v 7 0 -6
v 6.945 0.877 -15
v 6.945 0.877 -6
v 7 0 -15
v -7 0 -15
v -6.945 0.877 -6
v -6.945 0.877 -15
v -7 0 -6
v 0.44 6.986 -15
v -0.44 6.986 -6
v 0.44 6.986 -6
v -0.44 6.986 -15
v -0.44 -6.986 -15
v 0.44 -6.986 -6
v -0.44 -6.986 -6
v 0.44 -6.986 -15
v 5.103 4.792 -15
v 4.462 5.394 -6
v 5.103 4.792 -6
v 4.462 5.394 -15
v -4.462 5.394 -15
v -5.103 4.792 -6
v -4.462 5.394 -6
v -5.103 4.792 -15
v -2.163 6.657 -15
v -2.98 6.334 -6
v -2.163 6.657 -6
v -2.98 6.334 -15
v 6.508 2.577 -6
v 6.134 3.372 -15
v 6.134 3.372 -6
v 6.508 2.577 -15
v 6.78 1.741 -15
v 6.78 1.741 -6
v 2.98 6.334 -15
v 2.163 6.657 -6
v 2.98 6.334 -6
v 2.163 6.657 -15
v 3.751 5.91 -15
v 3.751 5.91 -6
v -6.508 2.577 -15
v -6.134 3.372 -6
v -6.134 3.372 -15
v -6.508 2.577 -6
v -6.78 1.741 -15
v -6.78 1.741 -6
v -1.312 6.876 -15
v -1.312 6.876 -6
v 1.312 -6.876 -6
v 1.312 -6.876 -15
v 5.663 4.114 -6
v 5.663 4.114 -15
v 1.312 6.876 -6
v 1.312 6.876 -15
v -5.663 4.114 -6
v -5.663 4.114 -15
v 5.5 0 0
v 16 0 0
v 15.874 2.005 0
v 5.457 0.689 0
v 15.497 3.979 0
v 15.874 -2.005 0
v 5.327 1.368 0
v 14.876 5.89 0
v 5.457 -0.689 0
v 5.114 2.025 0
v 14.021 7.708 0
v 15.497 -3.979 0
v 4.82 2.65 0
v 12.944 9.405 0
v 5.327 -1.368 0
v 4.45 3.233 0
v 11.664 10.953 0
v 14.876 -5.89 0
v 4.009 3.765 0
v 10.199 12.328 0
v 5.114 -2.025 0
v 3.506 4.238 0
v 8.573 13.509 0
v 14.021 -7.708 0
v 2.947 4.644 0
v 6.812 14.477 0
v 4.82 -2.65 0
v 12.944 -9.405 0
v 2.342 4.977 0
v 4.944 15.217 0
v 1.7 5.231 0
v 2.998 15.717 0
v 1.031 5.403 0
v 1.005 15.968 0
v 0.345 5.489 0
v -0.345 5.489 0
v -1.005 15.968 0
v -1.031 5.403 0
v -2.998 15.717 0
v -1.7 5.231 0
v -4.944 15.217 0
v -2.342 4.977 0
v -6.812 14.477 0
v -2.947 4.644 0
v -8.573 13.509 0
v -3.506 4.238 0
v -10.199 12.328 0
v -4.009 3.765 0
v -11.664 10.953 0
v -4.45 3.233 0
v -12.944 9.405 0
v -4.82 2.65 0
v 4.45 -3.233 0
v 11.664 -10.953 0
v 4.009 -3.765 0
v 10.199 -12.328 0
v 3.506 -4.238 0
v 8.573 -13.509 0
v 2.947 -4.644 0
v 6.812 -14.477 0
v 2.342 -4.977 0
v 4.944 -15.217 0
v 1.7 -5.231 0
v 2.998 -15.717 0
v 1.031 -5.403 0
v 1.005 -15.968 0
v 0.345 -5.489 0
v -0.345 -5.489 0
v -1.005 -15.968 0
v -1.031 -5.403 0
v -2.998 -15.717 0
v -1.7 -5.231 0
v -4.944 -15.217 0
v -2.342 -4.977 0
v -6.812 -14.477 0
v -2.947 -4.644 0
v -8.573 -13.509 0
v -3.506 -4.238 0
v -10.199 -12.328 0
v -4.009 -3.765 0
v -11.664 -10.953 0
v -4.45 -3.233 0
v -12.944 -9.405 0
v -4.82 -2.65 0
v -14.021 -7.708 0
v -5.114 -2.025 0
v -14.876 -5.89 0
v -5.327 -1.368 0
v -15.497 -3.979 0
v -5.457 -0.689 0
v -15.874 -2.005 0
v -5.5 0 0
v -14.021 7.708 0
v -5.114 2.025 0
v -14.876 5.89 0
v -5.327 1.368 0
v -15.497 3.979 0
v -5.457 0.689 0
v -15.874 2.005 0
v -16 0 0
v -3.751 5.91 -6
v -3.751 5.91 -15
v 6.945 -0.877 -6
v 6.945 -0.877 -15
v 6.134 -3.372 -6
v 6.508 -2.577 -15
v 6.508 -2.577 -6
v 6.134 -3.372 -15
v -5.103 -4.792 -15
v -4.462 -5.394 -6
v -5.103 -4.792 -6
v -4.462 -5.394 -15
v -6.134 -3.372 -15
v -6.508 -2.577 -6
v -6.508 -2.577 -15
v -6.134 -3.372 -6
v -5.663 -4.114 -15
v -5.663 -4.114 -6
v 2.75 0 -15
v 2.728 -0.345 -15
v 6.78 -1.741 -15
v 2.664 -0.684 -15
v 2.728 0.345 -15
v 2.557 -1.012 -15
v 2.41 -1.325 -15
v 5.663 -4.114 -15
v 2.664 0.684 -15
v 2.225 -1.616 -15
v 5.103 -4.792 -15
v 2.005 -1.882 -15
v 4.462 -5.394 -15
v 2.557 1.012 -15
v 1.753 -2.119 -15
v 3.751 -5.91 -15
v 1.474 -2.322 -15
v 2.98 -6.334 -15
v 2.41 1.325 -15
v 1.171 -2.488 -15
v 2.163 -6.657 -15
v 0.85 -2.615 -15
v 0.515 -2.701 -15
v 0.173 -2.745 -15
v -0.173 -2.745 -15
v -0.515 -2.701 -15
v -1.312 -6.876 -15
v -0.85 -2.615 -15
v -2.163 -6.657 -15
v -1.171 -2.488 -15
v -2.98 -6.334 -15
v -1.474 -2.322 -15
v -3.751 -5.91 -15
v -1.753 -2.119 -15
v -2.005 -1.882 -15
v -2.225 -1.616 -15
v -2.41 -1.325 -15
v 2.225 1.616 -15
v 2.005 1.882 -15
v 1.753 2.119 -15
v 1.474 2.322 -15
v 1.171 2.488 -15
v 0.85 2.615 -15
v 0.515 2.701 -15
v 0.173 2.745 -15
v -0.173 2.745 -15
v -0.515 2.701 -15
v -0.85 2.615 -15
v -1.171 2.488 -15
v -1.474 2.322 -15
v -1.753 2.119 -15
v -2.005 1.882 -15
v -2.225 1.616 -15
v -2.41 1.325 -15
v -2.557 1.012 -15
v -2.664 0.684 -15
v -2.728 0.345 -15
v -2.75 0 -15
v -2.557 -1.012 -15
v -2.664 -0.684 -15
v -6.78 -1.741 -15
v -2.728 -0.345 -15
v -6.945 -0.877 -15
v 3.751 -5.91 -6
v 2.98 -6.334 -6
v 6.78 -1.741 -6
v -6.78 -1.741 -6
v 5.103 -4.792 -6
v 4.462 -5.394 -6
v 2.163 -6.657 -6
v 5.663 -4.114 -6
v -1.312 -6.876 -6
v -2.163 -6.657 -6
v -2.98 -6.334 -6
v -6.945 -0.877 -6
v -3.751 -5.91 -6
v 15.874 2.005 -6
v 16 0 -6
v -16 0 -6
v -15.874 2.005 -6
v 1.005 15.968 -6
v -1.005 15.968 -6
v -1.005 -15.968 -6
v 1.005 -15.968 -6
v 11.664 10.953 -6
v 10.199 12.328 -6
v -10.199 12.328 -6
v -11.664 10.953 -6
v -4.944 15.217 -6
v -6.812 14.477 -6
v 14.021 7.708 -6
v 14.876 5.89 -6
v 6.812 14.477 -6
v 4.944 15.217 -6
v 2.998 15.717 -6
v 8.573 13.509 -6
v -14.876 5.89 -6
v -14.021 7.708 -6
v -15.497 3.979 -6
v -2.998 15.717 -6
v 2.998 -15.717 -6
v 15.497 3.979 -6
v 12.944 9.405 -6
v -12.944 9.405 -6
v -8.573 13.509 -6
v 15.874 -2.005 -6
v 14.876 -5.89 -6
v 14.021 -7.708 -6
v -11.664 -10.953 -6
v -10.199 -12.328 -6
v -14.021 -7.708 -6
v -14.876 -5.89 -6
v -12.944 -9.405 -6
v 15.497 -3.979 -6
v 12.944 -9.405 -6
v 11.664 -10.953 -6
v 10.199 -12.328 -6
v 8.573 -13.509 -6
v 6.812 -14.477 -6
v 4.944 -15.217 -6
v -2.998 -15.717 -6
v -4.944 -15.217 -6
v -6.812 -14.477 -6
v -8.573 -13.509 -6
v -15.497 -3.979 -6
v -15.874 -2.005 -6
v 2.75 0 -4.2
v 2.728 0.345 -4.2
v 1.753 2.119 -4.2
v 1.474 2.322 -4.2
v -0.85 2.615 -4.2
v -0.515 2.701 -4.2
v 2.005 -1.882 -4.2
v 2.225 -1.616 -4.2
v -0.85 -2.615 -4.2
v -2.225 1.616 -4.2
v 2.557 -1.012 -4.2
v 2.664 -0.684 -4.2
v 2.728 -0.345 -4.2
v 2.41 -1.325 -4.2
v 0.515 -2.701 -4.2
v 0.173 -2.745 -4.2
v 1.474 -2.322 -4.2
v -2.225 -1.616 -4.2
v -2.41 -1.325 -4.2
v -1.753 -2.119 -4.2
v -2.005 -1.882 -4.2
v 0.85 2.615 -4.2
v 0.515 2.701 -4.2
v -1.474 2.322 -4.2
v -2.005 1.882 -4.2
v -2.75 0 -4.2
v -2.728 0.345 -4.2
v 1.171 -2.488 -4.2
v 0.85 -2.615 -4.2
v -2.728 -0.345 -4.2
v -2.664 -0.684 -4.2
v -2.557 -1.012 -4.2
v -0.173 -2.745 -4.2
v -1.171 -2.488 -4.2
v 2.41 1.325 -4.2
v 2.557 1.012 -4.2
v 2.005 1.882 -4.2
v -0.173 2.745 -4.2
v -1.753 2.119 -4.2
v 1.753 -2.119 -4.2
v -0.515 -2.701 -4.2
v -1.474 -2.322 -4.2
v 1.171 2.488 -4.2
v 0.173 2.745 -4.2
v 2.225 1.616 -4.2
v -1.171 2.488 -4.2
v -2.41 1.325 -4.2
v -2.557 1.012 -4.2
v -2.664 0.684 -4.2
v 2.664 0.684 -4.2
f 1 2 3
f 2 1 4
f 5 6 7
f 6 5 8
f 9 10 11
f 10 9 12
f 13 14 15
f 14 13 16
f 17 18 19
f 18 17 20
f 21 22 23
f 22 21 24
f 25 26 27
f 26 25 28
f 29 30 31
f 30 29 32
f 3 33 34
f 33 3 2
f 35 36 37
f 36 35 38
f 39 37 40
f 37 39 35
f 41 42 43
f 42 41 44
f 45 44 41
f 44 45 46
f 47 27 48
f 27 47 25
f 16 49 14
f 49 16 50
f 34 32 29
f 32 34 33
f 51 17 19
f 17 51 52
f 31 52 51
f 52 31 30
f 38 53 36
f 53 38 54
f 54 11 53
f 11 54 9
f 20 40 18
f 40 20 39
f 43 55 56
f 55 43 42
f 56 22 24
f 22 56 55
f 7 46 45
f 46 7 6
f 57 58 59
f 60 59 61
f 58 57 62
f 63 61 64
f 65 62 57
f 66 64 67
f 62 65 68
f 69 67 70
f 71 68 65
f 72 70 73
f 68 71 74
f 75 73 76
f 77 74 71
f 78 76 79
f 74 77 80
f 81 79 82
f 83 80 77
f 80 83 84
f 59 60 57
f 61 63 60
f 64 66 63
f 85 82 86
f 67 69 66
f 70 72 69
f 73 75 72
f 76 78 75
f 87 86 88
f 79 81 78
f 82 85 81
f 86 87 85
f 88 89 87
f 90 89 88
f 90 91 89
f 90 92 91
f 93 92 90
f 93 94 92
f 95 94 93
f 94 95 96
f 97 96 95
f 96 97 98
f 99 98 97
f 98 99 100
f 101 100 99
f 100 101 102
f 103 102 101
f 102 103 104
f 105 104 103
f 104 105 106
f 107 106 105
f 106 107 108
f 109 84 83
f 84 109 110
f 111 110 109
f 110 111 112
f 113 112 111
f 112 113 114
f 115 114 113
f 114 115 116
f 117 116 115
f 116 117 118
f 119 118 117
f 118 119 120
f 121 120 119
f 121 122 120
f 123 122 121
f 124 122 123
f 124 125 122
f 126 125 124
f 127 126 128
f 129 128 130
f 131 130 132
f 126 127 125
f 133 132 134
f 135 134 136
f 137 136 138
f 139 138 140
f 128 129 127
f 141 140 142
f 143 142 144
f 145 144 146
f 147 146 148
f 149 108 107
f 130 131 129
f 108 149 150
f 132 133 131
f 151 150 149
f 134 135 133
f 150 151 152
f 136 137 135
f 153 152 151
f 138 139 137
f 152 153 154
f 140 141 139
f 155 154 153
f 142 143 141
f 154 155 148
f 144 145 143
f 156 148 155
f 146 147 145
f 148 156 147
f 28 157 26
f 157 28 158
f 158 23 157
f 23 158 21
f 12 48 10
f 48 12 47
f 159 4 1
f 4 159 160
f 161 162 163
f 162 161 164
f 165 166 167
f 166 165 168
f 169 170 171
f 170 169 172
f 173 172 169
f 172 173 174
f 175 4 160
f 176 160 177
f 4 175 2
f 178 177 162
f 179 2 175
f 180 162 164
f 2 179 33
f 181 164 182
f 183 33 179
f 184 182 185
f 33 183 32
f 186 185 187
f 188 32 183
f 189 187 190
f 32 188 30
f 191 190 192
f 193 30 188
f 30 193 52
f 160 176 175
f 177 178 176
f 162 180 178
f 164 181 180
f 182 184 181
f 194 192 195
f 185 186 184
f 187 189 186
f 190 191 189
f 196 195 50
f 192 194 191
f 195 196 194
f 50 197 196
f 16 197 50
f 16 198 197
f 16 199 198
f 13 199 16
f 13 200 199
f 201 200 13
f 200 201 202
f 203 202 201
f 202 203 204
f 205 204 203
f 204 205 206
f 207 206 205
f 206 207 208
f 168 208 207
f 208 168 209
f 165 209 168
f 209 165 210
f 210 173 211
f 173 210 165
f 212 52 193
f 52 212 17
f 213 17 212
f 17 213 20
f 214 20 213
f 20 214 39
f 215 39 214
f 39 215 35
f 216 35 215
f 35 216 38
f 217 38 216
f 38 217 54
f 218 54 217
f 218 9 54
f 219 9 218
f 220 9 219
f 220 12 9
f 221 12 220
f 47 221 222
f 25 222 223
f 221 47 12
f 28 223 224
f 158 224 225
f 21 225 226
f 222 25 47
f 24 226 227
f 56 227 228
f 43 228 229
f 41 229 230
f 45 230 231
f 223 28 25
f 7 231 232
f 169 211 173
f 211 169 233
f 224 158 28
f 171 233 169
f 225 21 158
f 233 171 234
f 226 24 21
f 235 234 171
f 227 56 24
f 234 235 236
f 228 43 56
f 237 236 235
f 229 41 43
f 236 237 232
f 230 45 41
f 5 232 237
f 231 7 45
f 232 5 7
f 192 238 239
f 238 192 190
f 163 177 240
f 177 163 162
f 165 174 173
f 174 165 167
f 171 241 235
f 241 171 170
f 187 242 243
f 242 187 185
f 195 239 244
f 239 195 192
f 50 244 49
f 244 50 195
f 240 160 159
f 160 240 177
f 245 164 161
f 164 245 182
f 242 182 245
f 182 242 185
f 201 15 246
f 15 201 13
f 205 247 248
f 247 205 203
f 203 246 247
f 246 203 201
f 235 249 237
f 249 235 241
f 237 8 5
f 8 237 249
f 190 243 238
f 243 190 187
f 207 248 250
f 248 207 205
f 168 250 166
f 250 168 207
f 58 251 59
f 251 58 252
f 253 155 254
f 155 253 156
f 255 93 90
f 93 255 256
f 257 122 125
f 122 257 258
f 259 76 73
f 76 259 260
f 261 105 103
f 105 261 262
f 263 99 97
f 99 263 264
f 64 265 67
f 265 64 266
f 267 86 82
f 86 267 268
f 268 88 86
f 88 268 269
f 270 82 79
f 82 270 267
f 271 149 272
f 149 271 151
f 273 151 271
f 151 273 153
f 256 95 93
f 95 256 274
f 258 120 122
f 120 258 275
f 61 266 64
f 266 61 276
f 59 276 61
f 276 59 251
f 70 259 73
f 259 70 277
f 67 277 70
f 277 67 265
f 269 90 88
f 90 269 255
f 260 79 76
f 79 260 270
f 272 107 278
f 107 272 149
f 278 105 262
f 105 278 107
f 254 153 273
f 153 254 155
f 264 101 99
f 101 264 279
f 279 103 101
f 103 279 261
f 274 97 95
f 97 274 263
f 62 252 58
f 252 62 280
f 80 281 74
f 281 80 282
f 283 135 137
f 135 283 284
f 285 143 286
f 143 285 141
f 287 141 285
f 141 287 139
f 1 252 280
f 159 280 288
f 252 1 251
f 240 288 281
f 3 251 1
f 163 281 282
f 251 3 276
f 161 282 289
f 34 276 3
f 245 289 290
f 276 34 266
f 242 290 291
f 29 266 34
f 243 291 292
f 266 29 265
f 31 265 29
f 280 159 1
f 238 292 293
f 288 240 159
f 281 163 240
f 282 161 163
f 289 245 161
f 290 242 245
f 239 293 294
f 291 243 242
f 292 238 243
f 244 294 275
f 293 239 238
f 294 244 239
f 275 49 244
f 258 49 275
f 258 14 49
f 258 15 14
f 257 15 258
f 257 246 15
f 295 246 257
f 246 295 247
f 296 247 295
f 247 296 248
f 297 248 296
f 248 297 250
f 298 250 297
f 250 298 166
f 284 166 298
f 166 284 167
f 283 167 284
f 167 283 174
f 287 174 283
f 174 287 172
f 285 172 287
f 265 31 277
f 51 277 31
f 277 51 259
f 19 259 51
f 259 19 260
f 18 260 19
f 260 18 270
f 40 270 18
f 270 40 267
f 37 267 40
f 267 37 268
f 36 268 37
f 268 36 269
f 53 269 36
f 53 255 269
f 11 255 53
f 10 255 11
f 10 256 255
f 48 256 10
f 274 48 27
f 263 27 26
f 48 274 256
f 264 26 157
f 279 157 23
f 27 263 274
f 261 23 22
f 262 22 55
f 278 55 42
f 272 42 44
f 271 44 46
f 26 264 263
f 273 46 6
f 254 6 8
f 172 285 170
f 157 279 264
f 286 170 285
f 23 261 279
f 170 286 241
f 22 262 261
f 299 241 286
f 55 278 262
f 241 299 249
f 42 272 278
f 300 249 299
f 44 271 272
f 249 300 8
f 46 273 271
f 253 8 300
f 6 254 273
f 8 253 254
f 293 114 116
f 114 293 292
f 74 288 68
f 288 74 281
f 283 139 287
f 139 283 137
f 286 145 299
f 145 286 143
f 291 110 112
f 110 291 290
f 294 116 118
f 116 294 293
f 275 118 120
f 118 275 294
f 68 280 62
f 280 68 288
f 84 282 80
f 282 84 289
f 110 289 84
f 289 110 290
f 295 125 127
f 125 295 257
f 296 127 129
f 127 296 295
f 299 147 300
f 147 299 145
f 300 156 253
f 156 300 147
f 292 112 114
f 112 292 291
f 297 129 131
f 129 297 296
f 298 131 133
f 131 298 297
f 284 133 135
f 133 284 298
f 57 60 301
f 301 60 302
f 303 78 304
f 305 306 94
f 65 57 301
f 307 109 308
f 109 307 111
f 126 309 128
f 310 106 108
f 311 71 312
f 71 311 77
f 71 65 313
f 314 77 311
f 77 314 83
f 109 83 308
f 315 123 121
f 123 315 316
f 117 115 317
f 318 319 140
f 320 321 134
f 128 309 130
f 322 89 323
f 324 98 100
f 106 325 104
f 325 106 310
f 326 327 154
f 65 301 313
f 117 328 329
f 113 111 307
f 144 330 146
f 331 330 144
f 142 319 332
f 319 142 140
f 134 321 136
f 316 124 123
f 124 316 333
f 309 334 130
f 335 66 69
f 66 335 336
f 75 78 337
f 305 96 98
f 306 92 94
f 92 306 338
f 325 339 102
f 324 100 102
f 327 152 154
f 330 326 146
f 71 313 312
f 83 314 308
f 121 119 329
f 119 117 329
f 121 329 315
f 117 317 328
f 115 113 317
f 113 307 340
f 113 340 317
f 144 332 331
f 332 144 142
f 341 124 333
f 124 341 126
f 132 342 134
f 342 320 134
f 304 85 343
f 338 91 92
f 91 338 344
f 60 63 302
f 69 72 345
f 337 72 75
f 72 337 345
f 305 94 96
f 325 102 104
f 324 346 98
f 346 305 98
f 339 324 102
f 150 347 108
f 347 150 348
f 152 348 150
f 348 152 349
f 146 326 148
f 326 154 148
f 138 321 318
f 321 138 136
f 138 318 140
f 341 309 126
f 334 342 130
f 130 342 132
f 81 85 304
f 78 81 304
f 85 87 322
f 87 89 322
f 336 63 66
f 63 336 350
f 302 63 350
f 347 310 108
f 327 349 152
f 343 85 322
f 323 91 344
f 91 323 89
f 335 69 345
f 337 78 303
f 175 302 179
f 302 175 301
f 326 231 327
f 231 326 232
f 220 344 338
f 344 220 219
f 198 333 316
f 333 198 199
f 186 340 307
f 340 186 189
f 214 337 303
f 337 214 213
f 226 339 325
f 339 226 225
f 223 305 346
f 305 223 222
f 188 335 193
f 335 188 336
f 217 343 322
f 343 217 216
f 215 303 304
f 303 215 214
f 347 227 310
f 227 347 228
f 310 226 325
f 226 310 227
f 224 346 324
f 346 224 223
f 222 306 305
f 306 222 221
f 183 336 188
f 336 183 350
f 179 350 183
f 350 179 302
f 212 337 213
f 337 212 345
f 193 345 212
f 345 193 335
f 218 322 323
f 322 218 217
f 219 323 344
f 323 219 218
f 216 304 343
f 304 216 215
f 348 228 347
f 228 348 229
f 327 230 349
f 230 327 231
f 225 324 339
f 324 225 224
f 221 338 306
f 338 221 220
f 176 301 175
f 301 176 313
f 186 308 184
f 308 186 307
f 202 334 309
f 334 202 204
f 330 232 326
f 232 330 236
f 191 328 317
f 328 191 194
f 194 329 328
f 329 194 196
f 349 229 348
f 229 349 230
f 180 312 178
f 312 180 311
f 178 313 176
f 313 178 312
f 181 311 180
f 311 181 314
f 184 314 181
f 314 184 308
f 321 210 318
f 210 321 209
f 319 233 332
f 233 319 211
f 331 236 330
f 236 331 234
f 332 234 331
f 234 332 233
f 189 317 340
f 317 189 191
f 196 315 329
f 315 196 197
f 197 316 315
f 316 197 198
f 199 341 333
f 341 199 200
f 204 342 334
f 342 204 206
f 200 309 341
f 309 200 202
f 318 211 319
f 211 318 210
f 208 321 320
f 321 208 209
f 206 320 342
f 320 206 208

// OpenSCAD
$fn = 50;


difference() {
	union() {
		translate(v = [0, 0, -15.0000000000]) {
			cylinder(h = 15, r = 7.0000000000);
		}
		translate(v = [0, 0, -6.0000000000]) {
			cylinder(h = 6, r = 16.0000000000);
		}
	}
	union() {
		translate(v = [0, 0, 0]) {
			rotate(a = [0, 0, 0]) {
				difference() {
					union() {
						#translate(v = [0, 0, -15.0000000000]) {
							cylinder(h = 15, r = 2.2500000000);
						}
						#translate(v = [0, 0, -4.2000000000]) {
							cylinder(h = 4.2000000000, r = 7.0000000000, r1 = 2.7500000000, r2 = 5.5000000000);
						}
						#translate(v = [0, 0, -15.0000000000]) {
							cylinder(h = 15, r = 2.7500000000);
						}
						#translate(v = [0, 0, -15.0000000000]) {
							cylinder(h = 15, r = 2.2500000000);
						}
					}
					union();
				}
			}
		}
	}
}
